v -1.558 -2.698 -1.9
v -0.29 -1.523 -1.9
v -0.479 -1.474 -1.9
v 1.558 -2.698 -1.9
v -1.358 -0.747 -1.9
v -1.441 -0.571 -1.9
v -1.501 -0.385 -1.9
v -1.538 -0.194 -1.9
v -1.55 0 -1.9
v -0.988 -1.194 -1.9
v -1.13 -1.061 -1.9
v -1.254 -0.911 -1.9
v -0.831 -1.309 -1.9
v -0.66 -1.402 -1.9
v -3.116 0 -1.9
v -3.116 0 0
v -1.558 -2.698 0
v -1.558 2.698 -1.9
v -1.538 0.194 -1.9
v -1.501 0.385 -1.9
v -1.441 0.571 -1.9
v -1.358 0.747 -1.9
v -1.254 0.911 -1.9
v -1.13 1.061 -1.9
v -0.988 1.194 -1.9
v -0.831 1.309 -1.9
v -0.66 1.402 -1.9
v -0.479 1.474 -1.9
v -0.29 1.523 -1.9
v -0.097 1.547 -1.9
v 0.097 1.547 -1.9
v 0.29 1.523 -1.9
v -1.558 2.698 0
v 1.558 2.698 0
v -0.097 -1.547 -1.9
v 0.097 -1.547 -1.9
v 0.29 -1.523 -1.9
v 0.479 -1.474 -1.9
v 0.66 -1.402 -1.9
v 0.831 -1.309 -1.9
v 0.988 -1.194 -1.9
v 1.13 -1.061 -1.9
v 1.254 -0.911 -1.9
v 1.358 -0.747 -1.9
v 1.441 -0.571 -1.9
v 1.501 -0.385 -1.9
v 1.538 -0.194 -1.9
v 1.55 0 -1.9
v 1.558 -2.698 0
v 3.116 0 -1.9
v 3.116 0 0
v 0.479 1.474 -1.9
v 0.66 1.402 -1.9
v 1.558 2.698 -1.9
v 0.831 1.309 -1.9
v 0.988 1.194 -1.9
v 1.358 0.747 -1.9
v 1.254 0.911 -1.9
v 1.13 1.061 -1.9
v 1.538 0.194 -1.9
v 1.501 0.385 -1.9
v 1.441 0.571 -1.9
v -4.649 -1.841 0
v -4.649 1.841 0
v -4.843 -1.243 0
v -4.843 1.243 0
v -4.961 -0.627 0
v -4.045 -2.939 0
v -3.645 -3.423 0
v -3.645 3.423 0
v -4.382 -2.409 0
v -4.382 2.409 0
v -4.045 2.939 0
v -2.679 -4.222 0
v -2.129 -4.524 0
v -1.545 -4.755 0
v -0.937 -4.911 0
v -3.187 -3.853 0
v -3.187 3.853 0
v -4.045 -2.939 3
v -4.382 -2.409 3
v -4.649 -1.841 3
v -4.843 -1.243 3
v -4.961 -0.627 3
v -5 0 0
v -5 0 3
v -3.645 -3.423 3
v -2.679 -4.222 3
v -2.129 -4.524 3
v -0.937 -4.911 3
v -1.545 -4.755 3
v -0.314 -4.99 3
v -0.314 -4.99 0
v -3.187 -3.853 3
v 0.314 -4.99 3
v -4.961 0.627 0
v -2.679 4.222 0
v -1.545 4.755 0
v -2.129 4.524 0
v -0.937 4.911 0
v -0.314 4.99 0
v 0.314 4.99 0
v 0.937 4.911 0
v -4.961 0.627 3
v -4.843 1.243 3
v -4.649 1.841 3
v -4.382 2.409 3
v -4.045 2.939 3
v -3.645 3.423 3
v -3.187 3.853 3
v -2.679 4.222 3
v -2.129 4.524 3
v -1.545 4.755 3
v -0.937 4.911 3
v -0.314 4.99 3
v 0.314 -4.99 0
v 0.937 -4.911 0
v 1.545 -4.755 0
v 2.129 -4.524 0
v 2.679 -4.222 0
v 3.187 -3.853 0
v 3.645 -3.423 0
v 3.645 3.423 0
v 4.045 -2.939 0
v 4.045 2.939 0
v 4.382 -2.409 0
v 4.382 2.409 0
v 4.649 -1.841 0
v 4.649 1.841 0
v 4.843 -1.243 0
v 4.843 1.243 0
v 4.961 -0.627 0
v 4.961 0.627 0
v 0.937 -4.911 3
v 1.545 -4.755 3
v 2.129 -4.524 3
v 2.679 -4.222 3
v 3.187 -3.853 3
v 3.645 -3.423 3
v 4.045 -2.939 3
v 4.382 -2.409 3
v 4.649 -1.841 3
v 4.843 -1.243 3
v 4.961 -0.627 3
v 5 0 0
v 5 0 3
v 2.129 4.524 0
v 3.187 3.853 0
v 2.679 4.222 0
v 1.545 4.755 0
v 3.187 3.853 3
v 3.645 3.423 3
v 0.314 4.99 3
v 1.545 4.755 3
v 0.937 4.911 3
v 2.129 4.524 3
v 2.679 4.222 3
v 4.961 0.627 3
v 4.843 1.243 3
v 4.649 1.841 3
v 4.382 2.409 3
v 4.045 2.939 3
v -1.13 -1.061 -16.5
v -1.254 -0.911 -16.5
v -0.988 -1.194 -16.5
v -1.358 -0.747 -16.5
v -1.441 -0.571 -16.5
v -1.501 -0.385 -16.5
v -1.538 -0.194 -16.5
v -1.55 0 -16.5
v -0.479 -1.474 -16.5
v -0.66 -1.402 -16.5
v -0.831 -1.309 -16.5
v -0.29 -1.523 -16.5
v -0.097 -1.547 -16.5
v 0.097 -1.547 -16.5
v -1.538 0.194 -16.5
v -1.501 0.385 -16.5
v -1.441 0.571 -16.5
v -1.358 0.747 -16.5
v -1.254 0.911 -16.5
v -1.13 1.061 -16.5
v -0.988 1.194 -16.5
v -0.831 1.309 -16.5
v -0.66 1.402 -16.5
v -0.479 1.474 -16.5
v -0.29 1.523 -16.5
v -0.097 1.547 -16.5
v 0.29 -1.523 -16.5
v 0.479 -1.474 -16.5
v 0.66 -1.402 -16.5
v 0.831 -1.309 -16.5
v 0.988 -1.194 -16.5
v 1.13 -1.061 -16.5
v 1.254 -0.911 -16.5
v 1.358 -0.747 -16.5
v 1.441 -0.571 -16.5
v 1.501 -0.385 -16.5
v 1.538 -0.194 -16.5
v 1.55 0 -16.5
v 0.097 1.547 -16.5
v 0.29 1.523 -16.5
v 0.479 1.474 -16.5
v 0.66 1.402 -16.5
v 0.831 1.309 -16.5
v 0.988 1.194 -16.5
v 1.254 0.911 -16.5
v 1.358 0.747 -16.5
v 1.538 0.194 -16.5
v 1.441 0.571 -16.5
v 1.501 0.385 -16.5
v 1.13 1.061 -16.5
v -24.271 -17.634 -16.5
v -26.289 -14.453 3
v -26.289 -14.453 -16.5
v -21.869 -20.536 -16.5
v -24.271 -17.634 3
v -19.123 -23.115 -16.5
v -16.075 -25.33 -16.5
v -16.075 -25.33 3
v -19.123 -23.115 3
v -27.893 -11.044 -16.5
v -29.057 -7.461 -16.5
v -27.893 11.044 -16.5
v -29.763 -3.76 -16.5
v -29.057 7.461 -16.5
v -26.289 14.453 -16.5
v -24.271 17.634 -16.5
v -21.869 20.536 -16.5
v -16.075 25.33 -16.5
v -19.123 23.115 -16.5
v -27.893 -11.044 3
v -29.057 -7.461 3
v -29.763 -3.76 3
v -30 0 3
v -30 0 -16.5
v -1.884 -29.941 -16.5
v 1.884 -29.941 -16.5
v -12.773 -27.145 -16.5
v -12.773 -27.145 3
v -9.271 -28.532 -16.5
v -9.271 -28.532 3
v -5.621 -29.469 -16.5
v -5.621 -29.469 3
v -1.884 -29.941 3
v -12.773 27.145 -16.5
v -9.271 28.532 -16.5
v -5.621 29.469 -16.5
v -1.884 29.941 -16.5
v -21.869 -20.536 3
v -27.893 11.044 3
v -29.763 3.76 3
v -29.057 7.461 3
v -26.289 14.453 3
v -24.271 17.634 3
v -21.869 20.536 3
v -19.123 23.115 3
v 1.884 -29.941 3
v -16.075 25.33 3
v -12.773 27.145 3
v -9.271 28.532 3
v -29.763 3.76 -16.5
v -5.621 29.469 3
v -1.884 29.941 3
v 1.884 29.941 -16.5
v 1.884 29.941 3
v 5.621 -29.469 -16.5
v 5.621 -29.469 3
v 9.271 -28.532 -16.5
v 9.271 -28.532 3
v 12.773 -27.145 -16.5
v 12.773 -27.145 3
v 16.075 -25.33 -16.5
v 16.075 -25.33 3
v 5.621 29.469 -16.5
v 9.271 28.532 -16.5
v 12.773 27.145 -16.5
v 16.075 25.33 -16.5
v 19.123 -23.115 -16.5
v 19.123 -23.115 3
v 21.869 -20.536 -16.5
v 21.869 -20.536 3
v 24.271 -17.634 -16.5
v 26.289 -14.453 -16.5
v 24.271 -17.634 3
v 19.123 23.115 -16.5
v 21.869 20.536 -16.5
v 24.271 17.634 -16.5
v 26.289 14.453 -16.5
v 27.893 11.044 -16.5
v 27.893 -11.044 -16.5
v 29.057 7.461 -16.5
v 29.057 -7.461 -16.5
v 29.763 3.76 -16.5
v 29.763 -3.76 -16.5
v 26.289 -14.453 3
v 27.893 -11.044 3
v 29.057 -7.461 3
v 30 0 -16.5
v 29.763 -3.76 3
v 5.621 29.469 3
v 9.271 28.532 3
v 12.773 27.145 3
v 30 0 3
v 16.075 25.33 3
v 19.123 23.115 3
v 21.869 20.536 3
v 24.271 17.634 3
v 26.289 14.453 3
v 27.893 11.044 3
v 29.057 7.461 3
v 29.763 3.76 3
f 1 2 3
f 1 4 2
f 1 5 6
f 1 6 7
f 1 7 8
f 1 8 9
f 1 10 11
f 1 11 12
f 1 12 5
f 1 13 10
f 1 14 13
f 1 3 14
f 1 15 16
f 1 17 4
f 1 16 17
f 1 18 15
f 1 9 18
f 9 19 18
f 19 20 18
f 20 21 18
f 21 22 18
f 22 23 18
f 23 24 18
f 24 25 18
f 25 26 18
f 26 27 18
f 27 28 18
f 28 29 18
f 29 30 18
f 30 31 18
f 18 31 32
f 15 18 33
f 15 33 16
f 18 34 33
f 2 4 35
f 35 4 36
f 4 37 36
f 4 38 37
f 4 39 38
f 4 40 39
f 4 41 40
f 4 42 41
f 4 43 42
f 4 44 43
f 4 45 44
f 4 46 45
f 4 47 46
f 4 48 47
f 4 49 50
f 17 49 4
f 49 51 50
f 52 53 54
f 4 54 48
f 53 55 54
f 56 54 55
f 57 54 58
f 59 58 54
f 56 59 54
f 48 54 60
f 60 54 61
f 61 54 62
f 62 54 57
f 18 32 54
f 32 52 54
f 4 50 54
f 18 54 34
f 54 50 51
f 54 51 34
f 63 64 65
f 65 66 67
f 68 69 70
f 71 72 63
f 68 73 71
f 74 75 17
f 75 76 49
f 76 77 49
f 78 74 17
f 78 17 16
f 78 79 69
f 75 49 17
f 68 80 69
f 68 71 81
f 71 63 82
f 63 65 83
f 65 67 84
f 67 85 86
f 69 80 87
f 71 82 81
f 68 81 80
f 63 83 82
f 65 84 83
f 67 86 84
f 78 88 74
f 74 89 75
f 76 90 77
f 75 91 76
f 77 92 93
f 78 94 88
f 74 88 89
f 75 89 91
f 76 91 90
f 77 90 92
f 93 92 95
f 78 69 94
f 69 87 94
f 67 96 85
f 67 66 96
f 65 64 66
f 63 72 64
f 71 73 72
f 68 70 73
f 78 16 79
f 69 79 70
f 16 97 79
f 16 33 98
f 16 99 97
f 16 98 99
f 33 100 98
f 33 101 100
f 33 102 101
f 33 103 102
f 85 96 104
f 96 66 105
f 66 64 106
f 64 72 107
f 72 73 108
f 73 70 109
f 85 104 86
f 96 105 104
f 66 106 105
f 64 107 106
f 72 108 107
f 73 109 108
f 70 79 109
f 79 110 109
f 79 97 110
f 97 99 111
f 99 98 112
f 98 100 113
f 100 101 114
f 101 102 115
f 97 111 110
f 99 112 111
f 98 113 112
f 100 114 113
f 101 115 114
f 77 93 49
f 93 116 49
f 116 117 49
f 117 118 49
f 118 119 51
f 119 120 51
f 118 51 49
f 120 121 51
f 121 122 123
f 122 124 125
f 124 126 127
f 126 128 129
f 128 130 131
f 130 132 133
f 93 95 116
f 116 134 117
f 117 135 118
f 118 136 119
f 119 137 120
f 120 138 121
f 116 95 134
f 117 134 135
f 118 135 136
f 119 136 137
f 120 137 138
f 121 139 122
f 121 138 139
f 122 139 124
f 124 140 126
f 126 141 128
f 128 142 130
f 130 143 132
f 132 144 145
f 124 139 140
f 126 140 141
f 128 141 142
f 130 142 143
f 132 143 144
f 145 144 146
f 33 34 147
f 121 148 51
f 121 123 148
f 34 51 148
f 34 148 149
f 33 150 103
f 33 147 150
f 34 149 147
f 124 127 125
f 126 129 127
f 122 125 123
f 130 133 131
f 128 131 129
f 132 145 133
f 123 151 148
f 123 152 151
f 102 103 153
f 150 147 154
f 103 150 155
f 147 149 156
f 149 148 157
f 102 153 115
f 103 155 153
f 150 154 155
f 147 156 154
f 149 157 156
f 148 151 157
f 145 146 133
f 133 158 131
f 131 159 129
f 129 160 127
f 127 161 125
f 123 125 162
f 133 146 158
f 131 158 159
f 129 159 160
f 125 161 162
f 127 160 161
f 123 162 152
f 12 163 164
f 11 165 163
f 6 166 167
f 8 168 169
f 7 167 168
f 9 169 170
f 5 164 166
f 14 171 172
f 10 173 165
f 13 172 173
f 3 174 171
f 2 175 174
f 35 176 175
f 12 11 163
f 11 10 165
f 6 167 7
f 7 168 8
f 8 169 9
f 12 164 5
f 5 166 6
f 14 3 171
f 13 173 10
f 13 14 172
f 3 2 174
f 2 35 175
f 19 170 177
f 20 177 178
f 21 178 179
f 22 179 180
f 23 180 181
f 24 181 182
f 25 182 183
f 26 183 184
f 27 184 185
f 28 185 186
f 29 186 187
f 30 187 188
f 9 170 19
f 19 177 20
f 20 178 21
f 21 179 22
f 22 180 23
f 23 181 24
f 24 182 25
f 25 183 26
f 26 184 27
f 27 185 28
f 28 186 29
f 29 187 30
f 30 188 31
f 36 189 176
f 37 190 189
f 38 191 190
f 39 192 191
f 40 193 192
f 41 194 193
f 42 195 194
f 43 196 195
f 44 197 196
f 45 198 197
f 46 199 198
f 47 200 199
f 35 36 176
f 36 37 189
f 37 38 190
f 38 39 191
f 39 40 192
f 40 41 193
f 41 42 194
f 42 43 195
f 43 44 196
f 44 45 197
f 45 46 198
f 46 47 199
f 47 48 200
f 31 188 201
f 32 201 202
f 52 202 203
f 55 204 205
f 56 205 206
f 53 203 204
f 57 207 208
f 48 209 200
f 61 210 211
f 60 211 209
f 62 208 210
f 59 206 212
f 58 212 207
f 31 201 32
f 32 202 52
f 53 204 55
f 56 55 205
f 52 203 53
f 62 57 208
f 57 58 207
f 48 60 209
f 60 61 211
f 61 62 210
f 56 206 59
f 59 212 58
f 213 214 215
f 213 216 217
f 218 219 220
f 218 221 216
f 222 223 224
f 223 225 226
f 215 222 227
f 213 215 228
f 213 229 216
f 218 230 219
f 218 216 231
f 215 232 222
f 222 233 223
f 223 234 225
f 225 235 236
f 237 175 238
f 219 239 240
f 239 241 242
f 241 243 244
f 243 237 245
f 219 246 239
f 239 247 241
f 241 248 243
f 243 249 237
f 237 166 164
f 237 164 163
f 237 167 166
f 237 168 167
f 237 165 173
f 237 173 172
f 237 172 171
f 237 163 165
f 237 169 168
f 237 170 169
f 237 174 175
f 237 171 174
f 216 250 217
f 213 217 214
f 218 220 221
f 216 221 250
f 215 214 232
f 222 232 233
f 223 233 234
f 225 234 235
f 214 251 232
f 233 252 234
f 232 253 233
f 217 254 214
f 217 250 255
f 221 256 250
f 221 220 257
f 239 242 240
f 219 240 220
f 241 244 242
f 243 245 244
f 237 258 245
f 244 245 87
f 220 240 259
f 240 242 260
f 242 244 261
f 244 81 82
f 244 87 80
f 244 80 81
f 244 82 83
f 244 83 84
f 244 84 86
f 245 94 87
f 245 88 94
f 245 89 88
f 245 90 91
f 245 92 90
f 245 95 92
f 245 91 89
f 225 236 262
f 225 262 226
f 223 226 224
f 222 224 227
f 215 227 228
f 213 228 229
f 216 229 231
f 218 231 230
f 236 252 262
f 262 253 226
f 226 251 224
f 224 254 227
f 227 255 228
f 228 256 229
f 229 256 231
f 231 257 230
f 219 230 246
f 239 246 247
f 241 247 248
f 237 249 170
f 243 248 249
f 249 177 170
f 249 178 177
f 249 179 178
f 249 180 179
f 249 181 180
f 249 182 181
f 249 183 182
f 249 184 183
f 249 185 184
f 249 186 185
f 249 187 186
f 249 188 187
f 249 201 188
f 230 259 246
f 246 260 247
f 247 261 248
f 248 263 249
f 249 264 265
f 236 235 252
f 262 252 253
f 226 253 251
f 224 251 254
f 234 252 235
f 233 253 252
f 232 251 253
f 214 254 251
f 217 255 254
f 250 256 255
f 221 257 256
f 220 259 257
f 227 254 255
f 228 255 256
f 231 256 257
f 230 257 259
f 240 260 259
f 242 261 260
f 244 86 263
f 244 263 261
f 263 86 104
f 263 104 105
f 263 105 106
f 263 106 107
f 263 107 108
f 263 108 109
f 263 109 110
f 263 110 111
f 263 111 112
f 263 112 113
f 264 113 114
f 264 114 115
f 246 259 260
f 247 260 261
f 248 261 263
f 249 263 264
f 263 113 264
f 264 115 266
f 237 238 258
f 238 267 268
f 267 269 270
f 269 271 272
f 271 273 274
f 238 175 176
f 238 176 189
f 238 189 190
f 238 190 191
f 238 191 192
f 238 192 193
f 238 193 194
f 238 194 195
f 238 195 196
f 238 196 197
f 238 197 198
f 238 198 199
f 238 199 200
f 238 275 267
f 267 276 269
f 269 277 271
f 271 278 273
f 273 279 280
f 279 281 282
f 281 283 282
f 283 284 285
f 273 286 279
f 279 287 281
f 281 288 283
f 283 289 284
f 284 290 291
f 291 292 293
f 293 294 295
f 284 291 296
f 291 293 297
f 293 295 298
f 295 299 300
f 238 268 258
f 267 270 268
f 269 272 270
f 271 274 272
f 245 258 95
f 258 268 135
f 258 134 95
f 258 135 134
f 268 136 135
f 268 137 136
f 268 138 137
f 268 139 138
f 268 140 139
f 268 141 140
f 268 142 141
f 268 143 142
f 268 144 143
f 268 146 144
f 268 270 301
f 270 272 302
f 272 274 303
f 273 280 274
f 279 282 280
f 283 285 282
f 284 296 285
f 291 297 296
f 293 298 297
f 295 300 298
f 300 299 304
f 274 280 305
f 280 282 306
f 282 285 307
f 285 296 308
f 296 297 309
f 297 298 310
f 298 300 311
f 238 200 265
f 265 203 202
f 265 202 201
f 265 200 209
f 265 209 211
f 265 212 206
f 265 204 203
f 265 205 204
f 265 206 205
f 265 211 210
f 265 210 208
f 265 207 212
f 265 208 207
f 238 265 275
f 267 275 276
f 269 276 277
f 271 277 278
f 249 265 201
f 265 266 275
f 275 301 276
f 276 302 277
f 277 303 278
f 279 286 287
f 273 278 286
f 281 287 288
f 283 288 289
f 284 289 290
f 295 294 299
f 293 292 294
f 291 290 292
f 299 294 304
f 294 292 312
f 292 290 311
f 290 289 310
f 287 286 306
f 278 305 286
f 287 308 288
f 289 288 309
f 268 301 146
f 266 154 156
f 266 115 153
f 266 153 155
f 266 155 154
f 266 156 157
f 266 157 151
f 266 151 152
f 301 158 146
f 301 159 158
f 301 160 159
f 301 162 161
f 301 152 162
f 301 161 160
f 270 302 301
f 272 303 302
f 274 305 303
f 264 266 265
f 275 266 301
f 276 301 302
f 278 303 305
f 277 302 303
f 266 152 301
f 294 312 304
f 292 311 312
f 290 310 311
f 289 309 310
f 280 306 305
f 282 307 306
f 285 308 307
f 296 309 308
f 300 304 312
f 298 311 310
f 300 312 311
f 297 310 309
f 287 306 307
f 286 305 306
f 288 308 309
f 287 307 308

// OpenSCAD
$fn = 50;

difference() {
	union() {
		translate(v = [0, 0, -16.5]) {
			cylinder(h = 19.5, r = 30.0);
		}
	}
	union() {
		translate(v = [0, 0, 0]) {
			rotate(a = [0, 0, 0]) {
				difference() {
					union() {
						translate(v = [0, 0, -1.9]) {
							linear_extrude(height = 1.9) {
								polygon(points = [[3.1158, 0.0], [1.5579000000000005, 2.698361953111554], [-1.5578999999999994, 2.6983619531115544], [-3.1158, 3.815754496783323e-16], [-1.5579000000000014, -2.6983619531115535], [1.557899999999998, -2.6983619531115552]]);
							}
						}
					}
					union();
				}
			}
		}
		#cylinder(h = 3, r = 5.0);
		#translate(v = [0, 0, -100.0]) {
			cylinder(h = 200, r = 1.55);
		}
	}
}
